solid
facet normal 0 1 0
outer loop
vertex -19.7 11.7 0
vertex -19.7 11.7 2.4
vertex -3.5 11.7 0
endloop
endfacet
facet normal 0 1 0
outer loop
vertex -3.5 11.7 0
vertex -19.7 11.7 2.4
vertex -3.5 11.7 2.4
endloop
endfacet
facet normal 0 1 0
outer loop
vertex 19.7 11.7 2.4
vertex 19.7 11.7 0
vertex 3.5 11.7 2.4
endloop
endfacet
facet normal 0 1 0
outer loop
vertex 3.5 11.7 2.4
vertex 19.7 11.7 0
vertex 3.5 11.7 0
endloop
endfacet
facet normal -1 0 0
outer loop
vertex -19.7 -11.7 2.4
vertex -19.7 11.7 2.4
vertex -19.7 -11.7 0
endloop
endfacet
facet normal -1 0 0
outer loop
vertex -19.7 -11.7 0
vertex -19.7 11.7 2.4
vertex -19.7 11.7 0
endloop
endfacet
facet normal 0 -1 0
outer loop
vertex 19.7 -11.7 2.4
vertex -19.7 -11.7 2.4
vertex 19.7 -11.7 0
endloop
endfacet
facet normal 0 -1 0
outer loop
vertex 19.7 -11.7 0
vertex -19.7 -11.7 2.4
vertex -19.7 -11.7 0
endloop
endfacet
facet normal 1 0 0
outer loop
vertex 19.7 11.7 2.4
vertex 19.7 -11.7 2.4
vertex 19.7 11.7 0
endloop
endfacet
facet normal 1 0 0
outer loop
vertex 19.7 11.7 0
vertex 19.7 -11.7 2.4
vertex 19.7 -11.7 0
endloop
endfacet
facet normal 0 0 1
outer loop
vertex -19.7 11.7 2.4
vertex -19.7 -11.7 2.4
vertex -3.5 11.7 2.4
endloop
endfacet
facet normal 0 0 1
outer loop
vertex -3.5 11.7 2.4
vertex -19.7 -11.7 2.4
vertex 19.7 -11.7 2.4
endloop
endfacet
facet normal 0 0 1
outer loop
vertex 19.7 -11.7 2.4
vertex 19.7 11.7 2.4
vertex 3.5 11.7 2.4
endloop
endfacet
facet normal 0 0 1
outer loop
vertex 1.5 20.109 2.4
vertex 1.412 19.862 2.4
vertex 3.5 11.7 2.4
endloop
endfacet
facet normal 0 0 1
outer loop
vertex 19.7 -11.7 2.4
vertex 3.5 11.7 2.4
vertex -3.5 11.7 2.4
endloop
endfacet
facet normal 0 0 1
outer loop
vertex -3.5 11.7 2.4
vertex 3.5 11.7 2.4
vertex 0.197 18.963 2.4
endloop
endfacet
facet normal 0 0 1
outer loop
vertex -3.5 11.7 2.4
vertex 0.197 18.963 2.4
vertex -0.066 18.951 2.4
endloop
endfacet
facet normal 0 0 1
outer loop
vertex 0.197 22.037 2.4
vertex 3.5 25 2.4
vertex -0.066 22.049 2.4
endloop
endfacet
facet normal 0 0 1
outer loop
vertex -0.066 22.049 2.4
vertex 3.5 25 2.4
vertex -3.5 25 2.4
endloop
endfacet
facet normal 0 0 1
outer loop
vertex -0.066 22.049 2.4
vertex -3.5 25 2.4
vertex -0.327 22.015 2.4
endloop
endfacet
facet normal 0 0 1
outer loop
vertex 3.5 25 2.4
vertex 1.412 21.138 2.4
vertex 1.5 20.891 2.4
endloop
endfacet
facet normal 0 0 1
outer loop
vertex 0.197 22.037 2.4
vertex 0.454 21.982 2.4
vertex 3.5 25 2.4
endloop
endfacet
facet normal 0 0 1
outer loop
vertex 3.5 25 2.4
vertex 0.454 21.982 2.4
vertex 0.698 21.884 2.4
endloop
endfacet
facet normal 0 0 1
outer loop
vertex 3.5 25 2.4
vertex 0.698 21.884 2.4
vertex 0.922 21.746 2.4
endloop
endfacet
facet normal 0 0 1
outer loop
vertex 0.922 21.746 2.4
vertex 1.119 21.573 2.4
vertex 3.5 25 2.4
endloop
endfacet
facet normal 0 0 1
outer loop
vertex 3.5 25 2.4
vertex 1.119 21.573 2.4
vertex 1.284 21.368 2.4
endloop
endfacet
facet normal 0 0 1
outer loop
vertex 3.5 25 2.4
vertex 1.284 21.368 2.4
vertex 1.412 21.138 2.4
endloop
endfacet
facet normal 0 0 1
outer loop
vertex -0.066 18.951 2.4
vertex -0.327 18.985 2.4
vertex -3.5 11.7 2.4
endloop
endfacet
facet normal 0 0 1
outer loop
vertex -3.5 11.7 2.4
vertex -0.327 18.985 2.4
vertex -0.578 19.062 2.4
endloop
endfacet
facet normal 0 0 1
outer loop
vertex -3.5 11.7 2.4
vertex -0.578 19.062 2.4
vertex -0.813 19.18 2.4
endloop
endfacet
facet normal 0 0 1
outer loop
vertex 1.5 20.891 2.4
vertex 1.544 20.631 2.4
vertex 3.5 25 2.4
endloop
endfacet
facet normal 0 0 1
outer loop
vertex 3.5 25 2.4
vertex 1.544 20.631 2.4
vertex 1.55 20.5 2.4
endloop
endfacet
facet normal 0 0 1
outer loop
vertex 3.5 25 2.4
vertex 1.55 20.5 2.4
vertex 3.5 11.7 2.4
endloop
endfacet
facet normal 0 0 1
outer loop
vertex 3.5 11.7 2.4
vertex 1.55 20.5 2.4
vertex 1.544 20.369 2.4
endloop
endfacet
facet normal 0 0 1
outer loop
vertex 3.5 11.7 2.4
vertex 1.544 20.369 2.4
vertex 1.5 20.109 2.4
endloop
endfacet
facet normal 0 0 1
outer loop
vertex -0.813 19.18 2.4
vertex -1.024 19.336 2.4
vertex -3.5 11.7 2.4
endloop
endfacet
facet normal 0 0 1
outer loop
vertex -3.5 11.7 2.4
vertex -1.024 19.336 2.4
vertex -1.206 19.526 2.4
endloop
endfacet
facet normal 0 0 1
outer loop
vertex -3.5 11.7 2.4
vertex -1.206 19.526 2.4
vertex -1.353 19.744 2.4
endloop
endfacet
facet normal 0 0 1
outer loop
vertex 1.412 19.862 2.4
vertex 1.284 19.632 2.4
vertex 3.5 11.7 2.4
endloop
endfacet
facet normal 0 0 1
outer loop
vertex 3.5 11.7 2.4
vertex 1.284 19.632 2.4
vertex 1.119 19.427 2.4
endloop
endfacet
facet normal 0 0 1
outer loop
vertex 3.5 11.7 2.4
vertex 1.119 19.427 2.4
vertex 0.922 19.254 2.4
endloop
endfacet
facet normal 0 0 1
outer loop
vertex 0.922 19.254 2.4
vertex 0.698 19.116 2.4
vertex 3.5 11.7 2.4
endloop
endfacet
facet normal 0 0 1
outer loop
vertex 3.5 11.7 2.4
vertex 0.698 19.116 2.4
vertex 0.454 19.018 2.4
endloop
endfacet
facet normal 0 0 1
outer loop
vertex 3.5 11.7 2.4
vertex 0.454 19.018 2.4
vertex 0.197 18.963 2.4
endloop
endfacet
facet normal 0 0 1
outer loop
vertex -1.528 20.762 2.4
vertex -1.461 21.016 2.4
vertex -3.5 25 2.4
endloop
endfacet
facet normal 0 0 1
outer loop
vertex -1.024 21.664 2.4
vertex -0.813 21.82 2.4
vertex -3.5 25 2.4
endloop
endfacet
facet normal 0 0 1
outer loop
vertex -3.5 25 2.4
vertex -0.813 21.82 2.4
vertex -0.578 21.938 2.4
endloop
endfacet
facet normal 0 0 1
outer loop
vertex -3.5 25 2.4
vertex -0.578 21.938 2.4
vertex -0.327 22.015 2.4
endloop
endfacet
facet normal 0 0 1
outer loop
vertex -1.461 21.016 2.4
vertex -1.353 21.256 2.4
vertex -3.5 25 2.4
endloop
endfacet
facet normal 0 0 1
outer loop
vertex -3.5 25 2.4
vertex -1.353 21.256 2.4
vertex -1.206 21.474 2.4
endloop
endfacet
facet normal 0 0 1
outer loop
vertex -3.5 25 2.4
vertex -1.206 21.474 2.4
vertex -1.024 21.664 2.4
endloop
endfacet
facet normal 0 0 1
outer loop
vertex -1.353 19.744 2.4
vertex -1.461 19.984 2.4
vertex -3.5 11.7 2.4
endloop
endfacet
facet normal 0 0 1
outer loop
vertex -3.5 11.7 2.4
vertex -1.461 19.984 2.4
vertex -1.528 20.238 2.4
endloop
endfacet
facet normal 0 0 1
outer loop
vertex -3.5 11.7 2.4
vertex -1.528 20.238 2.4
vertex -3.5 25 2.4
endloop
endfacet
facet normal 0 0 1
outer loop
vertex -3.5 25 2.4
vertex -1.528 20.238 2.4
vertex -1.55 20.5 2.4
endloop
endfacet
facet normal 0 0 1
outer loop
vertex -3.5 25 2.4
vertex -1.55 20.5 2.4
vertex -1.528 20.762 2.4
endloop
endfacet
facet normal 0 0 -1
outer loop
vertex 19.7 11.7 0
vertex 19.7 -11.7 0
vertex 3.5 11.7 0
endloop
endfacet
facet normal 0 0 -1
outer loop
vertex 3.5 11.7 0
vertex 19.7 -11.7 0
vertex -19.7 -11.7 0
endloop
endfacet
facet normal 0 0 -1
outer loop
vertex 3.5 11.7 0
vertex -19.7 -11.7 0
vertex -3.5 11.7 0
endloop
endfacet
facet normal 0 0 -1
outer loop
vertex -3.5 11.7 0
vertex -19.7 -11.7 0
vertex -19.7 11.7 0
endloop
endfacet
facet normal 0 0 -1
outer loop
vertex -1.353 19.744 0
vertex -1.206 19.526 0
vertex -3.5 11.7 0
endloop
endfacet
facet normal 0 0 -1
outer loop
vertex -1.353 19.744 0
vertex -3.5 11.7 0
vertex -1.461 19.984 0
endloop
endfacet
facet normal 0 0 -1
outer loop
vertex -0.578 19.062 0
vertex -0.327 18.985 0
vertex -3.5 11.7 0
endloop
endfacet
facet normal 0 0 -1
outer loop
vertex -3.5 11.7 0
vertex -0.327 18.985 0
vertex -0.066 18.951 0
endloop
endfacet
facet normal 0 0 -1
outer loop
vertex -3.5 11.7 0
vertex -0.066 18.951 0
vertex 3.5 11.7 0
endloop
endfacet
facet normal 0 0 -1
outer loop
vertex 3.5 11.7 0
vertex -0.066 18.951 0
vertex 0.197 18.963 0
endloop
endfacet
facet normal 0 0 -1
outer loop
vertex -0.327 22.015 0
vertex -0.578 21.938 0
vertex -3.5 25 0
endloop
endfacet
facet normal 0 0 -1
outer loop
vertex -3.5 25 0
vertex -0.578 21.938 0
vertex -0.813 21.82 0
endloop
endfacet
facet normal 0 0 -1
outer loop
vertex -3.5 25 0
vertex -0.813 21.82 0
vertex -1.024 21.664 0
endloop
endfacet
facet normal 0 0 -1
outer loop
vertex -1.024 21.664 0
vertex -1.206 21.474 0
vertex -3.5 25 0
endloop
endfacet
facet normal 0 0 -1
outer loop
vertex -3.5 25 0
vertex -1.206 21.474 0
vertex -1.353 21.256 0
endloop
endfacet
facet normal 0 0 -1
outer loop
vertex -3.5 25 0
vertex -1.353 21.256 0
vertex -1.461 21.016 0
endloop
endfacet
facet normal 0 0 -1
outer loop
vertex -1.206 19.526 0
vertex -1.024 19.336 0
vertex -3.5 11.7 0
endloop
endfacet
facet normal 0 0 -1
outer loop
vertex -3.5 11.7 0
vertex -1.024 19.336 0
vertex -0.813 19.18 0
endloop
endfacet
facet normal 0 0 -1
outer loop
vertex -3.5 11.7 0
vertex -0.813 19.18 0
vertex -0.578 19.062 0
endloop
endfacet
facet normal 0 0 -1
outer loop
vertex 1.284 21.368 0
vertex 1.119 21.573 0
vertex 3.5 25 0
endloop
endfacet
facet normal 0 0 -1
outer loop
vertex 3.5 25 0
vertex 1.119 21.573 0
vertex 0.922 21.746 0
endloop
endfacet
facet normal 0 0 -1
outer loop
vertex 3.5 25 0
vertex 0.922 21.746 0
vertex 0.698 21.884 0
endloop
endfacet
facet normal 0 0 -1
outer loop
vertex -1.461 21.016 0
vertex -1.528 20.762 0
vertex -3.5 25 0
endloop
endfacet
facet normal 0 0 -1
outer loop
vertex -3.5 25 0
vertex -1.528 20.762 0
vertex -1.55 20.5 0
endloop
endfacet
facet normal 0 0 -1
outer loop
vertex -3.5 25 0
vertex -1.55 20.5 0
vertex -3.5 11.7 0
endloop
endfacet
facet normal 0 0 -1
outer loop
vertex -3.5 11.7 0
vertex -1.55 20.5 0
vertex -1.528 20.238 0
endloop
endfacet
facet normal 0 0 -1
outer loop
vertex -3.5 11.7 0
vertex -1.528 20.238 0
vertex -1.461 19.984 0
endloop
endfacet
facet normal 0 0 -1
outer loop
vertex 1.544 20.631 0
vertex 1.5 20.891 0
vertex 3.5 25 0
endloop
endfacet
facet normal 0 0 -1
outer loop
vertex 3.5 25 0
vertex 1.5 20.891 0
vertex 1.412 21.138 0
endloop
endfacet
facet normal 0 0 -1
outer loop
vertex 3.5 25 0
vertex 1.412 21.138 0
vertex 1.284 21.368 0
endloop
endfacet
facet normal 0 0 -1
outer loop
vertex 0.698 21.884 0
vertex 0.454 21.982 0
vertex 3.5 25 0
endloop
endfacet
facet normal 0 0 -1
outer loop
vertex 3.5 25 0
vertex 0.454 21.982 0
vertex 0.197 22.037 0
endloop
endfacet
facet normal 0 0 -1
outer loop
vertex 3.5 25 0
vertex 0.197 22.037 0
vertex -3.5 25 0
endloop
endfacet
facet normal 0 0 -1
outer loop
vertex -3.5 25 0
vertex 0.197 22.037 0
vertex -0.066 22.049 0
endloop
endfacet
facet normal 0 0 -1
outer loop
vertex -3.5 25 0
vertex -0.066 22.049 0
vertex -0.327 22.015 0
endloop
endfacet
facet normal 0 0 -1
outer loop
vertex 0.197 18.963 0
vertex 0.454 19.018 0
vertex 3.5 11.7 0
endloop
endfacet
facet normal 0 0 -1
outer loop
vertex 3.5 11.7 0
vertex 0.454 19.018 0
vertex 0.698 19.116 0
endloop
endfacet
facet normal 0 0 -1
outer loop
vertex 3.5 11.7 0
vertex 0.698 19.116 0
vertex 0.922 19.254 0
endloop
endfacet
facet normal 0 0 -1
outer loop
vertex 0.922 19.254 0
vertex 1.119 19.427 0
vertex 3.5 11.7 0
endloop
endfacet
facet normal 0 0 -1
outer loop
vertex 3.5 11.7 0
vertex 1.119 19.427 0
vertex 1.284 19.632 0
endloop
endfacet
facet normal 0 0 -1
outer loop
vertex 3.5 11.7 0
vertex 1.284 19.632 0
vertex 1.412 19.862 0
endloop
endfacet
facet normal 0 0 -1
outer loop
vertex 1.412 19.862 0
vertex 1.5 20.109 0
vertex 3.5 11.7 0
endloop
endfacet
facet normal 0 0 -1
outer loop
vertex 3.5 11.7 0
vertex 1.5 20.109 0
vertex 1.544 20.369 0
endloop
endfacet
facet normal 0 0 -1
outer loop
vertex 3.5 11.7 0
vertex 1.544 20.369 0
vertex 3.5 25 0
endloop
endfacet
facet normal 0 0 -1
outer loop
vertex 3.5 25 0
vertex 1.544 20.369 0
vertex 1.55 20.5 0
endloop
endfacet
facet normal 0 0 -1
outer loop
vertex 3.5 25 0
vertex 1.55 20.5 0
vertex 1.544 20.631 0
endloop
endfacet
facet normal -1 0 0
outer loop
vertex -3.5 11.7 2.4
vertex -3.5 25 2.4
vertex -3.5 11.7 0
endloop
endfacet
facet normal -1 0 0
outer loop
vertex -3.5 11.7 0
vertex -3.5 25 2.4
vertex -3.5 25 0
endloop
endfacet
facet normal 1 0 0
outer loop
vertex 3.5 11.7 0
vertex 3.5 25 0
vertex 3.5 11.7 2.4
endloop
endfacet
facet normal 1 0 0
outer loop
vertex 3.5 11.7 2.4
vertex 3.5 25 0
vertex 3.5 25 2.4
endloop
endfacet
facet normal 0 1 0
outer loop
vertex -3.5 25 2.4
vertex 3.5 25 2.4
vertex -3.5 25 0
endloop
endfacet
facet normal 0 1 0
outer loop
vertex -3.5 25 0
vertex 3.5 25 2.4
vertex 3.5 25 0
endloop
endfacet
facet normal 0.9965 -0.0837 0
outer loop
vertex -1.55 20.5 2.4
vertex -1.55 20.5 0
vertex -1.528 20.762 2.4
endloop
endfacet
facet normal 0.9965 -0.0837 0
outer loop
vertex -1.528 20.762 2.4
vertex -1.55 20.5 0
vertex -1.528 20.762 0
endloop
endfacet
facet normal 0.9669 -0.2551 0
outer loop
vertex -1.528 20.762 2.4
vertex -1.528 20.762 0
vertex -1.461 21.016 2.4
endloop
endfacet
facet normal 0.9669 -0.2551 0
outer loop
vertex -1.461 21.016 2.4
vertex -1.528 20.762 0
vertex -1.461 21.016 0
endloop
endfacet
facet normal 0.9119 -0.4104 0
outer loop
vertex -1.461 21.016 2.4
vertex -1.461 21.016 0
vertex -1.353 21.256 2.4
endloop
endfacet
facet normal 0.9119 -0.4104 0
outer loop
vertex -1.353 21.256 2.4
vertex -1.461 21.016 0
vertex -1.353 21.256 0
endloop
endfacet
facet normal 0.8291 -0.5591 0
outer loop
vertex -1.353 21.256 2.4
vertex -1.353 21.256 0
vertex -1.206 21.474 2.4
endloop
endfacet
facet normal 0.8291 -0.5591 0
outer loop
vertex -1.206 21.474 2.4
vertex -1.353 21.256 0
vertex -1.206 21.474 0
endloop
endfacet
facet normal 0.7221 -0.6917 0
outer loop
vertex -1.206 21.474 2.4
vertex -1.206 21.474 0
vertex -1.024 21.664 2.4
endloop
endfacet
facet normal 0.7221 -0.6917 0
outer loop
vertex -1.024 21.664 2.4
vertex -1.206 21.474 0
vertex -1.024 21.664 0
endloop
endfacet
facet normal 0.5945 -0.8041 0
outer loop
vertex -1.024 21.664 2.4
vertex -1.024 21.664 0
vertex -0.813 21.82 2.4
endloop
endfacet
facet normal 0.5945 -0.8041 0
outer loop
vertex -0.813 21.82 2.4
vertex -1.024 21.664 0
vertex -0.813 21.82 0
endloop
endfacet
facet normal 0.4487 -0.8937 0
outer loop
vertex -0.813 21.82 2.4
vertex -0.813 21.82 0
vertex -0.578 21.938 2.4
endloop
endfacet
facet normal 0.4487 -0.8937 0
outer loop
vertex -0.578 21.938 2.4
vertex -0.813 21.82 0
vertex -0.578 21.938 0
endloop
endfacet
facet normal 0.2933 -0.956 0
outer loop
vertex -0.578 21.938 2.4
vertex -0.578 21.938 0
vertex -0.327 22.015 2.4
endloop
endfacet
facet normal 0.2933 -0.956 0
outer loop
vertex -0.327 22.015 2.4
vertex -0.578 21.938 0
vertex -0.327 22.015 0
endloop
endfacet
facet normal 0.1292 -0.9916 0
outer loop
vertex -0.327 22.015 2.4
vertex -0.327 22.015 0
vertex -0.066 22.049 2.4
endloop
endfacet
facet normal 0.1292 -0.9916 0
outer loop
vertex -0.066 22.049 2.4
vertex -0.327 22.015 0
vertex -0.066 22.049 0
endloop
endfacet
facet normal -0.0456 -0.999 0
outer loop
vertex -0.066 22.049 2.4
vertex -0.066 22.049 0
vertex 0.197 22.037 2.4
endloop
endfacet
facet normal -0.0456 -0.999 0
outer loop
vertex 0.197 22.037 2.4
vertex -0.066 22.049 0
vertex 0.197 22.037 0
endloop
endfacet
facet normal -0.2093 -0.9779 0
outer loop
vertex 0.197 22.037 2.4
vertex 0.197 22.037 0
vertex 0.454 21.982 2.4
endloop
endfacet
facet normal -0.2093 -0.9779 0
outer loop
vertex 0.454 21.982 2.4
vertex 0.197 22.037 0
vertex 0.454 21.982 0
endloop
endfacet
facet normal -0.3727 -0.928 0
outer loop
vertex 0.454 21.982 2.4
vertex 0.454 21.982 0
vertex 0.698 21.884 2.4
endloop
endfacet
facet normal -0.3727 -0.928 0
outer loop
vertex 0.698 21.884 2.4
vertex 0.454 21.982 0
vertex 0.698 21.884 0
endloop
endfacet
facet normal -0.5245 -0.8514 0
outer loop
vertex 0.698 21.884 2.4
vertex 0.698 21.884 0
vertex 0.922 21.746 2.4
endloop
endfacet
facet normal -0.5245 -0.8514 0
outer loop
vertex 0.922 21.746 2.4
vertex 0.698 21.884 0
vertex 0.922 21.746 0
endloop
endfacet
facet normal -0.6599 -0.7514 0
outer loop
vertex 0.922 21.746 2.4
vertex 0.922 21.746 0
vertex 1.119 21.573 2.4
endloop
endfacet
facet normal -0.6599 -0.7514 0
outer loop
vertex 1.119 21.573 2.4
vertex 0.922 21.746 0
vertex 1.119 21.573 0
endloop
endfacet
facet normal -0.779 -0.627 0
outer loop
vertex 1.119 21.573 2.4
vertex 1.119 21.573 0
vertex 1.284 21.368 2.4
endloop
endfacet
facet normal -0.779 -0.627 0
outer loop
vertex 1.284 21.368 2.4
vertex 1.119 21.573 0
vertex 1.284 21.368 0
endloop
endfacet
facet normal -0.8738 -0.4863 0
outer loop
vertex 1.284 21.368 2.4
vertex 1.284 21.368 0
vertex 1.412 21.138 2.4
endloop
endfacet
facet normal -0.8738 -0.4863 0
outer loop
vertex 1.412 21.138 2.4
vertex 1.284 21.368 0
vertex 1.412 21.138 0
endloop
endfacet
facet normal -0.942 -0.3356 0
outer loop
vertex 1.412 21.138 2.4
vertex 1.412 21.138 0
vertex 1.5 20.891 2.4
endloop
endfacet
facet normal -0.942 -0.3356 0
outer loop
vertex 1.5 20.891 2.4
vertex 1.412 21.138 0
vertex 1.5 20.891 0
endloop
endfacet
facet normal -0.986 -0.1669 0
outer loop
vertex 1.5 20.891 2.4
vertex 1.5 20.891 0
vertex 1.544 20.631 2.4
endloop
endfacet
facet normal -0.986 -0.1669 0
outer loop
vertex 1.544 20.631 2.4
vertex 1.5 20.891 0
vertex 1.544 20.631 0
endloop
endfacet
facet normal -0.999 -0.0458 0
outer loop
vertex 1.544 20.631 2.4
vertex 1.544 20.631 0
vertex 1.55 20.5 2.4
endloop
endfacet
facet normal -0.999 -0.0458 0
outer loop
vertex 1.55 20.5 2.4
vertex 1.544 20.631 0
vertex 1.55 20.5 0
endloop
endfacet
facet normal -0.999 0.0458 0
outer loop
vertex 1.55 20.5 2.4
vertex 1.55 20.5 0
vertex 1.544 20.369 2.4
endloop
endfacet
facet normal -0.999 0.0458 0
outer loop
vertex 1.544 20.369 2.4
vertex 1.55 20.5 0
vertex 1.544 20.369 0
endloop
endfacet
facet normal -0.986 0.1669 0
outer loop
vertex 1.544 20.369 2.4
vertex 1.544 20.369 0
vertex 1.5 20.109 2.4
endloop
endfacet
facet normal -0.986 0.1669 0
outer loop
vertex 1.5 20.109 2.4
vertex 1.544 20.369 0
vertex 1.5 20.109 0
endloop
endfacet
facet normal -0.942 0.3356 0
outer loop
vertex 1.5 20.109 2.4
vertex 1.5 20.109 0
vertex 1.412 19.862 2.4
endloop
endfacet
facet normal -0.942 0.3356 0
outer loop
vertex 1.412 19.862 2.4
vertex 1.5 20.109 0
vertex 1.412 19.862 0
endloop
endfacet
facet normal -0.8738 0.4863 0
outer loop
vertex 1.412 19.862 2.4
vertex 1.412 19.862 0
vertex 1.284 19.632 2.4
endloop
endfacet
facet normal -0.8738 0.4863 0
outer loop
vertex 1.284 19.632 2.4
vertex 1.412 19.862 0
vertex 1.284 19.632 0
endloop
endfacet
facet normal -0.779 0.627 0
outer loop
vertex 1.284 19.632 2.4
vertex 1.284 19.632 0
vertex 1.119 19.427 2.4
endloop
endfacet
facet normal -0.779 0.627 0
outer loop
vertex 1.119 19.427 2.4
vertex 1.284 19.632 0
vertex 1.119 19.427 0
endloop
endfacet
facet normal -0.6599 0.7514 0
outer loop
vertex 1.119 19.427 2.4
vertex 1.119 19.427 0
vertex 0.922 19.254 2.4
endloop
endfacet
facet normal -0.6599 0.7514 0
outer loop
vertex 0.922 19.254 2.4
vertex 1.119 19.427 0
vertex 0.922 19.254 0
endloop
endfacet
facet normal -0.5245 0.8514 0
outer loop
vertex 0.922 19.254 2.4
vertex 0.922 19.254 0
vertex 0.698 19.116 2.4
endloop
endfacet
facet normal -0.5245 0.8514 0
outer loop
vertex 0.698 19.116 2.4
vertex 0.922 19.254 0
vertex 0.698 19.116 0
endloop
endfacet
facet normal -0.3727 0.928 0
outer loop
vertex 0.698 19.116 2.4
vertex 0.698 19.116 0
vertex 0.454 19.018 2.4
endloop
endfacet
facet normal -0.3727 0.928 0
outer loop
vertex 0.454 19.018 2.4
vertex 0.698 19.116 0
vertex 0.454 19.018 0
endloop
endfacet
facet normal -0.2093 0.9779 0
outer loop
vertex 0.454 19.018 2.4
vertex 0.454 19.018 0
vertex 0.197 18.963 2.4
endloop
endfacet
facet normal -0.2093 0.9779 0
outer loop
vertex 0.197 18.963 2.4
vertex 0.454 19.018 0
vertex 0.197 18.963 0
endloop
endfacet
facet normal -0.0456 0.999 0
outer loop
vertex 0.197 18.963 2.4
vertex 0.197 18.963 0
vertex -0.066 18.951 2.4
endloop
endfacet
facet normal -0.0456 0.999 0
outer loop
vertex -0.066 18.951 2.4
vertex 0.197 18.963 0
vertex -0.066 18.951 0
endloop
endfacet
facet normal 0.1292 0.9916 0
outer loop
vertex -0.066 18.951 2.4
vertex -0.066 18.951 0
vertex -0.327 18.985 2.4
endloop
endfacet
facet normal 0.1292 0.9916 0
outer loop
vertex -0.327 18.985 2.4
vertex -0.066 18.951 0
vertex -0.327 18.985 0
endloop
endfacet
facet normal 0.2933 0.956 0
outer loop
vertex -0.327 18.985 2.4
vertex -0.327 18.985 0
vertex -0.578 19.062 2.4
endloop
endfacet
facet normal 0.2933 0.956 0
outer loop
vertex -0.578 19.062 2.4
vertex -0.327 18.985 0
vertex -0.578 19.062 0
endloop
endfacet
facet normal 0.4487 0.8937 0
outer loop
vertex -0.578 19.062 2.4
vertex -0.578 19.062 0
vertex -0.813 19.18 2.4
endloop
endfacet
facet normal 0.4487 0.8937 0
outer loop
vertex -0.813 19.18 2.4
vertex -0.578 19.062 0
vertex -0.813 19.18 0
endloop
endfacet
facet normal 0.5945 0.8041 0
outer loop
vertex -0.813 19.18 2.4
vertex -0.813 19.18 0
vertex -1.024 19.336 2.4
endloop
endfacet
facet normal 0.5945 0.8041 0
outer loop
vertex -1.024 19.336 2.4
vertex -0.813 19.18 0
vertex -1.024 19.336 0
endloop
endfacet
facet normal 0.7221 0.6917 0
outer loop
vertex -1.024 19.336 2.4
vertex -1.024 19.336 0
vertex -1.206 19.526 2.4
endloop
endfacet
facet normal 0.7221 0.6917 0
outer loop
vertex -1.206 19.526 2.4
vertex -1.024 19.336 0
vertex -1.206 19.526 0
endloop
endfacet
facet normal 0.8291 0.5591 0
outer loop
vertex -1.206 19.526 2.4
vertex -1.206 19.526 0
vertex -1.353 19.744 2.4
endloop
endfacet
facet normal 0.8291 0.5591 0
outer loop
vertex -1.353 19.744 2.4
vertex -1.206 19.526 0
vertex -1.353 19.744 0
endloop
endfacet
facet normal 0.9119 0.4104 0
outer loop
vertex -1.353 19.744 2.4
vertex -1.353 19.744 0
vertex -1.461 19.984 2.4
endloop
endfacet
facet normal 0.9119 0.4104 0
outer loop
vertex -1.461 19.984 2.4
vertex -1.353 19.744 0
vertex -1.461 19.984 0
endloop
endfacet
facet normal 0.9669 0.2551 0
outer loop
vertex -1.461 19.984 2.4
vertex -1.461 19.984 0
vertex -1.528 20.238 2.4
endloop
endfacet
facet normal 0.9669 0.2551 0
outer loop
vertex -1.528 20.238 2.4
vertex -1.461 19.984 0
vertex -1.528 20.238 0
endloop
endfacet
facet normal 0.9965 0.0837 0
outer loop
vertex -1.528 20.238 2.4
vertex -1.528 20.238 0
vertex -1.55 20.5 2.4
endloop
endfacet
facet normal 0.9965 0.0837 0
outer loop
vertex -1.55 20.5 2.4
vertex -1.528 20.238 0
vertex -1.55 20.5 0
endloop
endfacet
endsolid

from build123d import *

# Parameters (mm, degrees)
SKETCH2_W            = 39.4
SKETCH2_H            = 23.4
HATCH_PLATE_DEPTH    = 2.4
SKETCH3_W            = 7
SKETCH3_H            = 14
SKETCH3_R            = 1.55
DRIVE_ARM_D3P1_DEPTH = 2.4


with BuildPart() as part:
    # Sketch2 → Hatch_plate (new body)
    with BuildSketch(Plane.XY):
        Rectangle(SKETCH2_W, SKETCH2_H)
    extrude(amount=HATCH_PLATE_DEPTH)

    # Sketch3 → Drive_arm_D3p1 (add)
    with BuildSketch(Plane.XY):
        with Locations((0, 18)):
            Rectangle(SKETCH3_W, SKETCH3_H)
        with Locations((0, 20.5)):
            Circle(SKETCH3_R, mode=Mode.SUBTRACT)
    extrude(amount=DRIVE_ARM_D3P1_DEPTH)


solid = part.part
